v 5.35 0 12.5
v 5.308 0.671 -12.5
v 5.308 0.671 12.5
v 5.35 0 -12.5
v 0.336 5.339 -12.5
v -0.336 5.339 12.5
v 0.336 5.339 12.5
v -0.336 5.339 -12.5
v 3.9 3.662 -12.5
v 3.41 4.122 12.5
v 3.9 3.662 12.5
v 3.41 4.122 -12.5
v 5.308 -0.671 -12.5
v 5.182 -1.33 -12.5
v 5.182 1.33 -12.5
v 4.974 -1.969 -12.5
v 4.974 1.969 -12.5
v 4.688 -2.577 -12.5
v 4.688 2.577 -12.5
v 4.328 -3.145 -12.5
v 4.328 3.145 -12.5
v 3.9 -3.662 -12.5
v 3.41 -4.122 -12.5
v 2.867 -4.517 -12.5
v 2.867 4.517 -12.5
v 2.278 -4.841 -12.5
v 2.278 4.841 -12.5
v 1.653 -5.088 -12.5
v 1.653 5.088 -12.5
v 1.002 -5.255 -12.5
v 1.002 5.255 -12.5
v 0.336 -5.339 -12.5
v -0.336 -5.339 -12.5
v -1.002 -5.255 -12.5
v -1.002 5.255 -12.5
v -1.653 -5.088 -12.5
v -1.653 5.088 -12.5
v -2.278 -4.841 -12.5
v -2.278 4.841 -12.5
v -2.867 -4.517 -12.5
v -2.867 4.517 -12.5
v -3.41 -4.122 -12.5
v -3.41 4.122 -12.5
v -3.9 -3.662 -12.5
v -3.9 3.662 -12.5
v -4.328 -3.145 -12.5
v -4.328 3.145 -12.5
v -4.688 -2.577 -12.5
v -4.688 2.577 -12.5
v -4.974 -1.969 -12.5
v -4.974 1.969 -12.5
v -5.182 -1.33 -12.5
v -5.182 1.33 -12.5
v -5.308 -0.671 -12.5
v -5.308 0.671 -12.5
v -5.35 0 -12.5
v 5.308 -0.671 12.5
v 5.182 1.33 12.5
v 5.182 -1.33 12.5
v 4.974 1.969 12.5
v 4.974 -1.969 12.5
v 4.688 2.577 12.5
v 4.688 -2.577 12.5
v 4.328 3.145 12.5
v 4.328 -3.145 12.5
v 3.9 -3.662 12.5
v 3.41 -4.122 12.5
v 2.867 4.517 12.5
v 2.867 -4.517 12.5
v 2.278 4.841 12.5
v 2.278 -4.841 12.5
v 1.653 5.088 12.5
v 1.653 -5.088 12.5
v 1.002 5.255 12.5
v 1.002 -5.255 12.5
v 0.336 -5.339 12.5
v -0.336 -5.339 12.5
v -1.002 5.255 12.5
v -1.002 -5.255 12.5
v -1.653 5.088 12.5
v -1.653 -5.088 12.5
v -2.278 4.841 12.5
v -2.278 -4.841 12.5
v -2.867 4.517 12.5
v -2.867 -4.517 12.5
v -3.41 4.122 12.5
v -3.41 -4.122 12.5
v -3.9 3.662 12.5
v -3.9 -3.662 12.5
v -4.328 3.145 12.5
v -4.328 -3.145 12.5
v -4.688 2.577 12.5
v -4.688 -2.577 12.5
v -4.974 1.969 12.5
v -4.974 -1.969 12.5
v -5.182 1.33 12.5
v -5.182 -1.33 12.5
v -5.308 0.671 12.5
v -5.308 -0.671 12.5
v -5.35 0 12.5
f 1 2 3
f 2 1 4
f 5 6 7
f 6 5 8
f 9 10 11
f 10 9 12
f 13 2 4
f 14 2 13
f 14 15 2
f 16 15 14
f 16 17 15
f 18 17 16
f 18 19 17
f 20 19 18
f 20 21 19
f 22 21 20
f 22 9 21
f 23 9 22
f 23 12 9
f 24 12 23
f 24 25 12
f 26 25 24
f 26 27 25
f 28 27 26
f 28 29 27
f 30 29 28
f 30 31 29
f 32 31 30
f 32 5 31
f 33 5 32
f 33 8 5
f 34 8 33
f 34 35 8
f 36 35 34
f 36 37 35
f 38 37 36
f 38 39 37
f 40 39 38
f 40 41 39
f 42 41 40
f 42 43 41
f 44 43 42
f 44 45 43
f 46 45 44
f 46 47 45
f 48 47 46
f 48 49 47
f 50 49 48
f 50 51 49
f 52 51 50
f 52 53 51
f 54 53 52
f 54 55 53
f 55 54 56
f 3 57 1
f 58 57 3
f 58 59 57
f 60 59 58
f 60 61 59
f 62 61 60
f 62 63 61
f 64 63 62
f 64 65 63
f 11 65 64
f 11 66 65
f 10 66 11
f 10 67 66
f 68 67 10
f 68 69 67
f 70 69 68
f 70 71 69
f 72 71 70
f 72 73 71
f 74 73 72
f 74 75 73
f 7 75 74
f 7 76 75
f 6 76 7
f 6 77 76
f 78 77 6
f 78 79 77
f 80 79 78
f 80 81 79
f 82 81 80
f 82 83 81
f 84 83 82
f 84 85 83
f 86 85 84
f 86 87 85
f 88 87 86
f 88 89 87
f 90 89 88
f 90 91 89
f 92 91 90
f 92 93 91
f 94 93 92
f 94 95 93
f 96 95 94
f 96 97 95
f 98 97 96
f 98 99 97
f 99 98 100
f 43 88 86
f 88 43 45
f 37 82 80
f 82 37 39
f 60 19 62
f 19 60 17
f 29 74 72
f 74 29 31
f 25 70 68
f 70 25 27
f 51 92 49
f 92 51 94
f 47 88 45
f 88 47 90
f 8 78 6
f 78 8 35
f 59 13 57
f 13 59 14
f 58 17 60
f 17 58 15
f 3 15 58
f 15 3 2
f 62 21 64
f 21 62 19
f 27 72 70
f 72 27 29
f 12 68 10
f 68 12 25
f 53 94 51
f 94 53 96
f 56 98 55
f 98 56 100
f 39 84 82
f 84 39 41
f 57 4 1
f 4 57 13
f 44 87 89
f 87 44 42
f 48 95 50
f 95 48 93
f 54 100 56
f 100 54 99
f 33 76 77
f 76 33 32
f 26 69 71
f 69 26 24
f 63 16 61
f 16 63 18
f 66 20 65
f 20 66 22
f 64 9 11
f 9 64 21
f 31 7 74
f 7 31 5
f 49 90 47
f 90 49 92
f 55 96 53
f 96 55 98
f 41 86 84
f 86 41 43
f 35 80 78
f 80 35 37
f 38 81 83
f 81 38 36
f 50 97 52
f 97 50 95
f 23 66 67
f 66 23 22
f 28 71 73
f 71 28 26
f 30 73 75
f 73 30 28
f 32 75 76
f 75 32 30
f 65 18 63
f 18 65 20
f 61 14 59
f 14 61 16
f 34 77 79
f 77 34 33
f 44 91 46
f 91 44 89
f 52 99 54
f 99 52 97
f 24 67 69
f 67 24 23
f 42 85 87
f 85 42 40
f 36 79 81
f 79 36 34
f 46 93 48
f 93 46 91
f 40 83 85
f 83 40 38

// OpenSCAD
$fn = 50;


difference() {
	union() {
		translate(v = [0, 0, -12.5000000000]) {
			cylinder(h = 25, r = 5.3500000000);
		}
	}
	union() {
		translate(v = [0, 0, -100.0000000000]) {
			cylinder(h = 200, r = 0);
		}
	}
}
